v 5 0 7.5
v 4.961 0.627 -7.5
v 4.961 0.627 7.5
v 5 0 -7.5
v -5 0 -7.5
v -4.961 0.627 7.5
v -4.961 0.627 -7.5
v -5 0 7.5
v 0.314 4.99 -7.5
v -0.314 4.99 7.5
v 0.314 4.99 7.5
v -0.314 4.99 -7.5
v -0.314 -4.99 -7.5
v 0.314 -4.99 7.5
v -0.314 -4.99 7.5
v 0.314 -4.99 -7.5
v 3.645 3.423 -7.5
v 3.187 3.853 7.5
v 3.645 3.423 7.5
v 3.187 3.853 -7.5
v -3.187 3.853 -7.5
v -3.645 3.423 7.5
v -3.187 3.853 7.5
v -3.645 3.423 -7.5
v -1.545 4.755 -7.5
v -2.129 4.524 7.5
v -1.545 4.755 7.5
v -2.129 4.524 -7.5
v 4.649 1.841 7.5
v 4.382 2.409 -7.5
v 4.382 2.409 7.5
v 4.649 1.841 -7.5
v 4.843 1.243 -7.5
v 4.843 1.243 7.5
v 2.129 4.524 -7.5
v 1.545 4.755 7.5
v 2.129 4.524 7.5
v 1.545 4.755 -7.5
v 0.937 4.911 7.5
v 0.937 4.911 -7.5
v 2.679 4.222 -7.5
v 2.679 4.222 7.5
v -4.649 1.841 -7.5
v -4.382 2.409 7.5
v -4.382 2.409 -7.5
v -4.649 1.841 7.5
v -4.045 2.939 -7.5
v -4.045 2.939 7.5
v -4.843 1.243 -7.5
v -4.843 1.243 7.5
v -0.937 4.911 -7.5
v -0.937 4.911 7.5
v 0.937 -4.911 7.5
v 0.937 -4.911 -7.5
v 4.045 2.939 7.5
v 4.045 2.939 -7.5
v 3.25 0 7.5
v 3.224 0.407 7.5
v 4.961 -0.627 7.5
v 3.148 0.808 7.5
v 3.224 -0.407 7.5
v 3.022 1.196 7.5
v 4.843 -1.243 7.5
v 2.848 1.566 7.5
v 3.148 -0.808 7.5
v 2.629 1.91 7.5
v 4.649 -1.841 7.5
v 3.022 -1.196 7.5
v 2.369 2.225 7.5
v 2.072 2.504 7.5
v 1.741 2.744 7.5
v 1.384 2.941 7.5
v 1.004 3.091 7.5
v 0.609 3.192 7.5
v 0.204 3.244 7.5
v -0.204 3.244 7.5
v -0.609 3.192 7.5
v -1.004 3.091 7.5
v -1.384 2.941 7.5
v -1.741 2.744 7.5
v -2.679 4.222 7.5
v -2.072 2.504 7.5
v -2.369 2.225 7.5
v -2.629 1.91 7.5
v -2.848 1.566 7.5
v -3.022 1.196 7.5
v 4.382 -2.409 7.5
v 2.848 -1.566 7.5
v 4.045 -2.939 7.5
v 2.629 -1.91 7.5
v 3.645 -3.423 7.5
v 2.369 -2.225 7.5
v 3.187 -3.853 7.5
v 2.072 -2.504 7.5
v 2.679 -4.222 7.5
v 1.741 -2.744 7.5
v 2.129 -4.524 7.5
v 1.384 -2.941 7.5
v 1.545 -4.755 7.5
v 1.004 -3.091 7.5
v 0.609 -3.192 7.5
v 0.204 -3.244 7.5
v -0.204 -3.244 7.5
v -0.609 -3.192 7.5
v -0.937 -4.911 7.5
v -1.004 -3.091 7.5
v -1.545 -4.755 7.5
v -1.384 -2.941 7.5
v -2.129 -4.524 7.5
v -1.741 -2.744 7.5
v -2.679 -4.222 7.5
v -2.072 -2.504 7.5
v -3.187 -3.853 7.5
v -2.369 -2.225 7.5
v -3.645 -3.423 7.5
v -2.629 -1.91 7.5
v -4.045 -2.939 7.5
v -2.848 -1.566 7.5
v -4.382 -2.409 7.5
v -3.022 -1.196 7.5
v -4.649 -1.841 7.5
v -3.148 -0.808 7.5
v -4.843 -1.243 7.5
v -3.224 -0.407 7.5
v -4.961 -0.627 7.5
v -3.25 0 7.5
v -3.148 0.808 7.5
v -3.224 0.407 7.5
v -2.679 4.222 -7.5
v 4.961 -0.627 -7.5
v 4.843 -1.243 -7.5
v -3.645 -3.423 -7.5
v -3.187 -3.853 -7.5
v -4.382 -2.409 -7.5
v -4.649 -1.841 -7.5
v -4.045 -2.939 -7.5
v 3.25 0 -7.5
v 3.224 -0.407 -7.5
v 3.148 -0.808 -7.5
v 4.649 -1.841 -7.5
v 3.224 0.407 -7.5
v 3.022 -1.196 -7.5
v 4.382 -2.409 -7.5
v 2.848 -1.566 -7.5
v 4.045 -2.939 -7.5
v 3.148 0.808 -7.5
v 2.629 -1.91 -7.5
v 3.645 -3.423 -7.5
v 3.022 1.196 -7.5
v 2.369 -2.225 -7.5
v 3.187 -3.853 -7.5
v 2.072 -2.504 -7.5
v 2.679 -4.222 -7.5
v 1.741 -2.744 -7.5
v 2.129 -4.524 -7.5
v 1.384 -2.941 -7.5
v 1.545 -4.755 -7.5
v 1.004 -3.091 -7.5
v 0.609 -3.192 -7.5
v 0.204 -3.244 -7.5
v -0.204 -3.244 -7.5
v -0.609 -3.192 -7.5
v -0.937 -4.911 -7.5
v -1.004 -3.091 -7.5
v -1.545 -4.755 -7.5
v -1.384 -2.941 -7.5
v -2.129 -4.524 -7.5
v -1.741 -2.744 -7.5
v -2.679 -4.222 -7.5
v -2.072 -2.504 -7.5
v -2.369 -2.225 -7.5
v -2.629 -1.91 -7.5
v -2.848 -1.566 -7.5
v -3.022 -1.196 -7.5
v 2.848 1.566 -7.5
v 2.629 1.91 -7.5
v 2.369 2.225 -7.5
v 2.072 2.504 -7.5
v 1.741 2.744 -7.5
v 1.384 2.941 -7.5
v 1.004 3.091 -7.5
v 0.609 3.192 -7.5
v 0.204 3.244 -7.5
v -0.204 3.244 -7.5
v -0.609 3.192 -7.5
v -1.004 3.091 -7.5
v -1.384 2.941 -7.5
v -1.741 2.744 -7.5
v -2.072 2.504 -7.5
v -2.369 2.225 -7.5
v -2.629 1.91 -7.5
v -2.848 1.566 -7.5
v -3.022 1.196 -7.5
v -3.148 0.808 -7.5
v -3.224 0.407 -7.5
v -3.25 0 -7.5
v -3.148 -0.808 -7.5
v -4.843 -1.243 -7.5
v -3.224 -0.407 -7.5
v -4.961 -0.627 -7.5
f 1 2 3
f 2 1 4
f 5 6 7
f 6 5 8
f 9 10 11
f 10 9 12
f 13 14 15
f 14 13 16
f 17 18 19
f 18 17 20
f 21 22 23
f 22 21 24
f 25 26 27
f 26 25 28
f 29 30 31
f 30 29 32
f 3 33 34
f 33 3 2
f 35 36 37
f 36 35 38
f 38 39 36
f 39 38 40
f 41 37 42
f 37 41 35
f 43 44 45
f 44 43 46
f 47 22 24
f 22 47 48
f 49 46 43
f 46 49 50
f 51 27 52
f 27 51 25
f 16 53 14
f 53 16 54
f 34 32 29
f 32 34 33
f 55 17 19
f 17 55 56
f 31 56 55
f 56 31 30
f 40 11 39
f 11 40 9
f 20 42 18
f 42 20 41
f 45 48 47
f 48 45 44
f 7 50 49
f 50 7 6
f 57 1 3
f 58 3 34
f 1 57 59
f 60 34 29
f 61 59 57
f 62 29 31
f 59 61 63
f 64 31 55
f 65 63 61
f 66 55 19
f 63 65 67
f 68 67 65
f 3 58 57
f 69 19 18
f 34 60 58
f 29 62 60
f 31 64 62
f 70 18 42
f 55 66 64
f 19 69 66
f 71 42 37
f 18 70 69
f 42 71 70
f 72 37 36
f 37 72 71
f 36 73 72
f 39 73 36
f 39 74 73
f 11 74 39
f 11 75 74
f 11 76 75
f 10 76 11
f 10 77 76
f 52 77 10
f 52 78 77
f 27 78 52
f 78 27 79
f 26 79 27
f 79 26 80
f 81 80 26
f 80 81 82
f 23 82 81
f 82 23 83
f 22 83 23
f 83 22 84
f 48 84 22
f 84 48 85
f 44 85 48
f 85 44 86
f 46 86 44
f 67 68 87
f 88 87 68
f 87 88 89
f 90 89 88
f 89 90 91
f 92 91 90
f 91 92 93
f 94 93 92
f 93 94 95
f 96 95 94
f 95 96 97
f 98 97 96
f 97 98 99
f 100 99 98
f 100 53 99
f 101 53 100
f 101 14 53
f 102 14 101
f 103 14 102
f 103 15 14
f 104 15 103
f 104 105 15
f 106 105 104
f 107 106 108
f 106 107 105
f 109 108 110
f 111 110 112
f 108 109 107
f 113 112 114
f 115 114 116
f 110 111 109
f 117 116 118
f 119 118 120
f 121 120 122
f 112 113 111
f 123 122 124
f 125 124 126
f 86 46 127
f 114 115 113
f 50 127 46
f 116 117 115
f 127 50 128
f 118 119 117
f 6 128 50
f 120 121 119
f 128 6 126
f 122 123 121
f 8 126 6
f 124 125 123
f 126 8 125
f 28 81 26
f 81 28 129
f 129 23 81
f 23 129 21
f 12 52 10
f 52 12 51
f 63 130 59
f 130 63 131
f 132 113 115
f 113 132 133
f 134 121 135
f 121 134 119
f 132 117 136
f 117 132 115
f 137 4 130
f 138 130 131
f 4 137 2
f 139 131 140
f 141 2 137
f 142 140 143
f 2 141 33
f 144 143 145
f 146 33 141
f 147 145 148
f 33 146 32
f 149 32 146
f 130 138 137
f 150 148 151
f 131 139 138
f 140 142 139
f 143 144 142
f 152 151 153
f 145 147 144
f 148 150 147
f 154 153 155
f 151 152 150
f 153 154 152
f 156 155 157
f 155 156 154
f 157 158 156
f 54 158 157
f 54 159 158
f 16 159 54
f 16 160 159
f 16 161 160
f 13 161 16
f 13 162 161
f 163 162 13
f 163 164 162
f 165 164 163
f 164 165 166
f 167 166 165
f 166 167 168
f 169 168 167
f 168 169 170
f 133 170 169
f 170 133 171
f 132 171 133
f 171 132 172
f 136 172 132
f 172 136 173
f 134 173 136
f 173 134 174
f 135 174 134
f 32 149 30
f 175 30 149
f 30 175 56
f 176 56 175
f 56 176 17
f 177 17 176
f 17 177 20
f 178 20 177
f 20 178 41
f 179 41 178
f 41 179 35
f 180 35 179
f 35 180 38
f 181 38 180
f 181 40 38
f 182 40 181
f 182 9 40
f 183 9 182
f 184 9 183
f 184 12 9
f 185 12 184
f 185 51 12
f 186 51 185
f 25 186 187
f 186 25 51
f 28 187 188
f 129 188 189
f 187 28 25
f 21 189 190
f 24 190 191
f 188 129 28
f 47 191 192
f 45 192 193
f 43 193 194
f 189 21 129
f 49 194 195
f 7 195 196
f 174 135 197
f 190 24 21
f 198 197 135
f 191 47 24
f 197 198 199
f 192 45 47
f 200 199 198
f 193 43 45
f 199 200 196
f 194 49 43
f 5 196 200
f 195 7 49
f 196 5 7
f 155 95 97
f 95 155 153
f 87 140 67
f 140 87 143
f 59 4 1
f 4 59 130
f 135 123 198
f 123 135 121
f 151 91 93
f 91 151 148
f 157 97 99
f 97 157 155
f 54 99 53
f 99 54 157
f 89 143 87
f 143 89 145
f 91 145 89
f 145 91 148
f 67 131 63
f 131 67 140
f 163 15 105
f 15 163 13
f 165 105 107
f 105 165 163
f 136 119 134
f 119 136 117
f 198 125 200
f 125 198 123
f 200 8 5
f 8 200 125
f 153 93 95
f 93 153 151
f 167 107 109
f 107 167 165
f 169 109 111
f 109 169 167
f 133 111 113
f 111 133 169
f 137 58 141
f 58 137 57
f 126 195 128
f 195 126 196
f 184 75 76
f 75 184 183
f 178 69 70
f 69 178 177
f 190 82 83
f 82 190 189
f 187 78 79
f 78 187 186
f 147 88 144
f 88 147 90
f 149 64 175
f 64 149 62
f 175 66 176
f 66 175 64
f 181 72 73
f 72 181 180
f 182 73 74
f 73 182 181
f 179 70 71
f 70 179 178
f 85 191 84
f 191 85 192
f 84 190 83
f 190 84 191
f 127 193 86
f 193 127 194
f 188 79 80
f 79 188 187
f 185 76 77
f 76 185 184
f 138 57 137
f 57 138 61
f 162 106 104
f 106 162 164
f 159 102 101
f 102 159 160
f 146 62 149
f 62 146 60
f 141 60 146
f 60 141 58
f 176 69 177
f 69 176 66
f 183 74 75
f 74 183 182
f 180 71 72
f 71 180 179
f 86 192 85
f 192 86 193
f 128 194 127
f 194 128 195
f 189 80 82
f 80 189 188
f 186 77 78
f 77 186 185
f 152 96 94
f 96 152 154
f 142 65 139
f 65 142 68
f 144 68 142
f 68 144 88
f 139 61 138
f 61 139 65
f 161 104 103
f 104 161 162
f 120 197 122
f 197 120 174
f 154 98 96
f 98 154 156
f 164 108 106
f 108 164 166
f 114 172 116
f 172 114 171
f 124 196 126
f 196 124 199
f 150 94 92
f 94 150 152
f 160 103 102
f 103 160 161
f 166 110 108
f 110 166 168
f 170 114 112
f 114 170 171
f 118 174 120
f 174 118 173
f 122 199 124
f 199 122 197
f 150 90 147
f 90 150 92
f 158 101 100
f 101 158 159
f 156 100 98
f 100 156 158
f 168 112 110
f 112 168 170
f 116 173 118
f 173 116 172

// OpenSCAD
$fn = 50;


difference() {
	union() {
		translate(v = [0, 0, -7.5000000000]) {
			cylinder(h = 15, r = 5.0000000000);
		}
	}
	union() {
		translate(v = [0, 0, -100.0000000000]) {
			cylinder(h = 200, r = 3.2500000000);
		}
	}
}
